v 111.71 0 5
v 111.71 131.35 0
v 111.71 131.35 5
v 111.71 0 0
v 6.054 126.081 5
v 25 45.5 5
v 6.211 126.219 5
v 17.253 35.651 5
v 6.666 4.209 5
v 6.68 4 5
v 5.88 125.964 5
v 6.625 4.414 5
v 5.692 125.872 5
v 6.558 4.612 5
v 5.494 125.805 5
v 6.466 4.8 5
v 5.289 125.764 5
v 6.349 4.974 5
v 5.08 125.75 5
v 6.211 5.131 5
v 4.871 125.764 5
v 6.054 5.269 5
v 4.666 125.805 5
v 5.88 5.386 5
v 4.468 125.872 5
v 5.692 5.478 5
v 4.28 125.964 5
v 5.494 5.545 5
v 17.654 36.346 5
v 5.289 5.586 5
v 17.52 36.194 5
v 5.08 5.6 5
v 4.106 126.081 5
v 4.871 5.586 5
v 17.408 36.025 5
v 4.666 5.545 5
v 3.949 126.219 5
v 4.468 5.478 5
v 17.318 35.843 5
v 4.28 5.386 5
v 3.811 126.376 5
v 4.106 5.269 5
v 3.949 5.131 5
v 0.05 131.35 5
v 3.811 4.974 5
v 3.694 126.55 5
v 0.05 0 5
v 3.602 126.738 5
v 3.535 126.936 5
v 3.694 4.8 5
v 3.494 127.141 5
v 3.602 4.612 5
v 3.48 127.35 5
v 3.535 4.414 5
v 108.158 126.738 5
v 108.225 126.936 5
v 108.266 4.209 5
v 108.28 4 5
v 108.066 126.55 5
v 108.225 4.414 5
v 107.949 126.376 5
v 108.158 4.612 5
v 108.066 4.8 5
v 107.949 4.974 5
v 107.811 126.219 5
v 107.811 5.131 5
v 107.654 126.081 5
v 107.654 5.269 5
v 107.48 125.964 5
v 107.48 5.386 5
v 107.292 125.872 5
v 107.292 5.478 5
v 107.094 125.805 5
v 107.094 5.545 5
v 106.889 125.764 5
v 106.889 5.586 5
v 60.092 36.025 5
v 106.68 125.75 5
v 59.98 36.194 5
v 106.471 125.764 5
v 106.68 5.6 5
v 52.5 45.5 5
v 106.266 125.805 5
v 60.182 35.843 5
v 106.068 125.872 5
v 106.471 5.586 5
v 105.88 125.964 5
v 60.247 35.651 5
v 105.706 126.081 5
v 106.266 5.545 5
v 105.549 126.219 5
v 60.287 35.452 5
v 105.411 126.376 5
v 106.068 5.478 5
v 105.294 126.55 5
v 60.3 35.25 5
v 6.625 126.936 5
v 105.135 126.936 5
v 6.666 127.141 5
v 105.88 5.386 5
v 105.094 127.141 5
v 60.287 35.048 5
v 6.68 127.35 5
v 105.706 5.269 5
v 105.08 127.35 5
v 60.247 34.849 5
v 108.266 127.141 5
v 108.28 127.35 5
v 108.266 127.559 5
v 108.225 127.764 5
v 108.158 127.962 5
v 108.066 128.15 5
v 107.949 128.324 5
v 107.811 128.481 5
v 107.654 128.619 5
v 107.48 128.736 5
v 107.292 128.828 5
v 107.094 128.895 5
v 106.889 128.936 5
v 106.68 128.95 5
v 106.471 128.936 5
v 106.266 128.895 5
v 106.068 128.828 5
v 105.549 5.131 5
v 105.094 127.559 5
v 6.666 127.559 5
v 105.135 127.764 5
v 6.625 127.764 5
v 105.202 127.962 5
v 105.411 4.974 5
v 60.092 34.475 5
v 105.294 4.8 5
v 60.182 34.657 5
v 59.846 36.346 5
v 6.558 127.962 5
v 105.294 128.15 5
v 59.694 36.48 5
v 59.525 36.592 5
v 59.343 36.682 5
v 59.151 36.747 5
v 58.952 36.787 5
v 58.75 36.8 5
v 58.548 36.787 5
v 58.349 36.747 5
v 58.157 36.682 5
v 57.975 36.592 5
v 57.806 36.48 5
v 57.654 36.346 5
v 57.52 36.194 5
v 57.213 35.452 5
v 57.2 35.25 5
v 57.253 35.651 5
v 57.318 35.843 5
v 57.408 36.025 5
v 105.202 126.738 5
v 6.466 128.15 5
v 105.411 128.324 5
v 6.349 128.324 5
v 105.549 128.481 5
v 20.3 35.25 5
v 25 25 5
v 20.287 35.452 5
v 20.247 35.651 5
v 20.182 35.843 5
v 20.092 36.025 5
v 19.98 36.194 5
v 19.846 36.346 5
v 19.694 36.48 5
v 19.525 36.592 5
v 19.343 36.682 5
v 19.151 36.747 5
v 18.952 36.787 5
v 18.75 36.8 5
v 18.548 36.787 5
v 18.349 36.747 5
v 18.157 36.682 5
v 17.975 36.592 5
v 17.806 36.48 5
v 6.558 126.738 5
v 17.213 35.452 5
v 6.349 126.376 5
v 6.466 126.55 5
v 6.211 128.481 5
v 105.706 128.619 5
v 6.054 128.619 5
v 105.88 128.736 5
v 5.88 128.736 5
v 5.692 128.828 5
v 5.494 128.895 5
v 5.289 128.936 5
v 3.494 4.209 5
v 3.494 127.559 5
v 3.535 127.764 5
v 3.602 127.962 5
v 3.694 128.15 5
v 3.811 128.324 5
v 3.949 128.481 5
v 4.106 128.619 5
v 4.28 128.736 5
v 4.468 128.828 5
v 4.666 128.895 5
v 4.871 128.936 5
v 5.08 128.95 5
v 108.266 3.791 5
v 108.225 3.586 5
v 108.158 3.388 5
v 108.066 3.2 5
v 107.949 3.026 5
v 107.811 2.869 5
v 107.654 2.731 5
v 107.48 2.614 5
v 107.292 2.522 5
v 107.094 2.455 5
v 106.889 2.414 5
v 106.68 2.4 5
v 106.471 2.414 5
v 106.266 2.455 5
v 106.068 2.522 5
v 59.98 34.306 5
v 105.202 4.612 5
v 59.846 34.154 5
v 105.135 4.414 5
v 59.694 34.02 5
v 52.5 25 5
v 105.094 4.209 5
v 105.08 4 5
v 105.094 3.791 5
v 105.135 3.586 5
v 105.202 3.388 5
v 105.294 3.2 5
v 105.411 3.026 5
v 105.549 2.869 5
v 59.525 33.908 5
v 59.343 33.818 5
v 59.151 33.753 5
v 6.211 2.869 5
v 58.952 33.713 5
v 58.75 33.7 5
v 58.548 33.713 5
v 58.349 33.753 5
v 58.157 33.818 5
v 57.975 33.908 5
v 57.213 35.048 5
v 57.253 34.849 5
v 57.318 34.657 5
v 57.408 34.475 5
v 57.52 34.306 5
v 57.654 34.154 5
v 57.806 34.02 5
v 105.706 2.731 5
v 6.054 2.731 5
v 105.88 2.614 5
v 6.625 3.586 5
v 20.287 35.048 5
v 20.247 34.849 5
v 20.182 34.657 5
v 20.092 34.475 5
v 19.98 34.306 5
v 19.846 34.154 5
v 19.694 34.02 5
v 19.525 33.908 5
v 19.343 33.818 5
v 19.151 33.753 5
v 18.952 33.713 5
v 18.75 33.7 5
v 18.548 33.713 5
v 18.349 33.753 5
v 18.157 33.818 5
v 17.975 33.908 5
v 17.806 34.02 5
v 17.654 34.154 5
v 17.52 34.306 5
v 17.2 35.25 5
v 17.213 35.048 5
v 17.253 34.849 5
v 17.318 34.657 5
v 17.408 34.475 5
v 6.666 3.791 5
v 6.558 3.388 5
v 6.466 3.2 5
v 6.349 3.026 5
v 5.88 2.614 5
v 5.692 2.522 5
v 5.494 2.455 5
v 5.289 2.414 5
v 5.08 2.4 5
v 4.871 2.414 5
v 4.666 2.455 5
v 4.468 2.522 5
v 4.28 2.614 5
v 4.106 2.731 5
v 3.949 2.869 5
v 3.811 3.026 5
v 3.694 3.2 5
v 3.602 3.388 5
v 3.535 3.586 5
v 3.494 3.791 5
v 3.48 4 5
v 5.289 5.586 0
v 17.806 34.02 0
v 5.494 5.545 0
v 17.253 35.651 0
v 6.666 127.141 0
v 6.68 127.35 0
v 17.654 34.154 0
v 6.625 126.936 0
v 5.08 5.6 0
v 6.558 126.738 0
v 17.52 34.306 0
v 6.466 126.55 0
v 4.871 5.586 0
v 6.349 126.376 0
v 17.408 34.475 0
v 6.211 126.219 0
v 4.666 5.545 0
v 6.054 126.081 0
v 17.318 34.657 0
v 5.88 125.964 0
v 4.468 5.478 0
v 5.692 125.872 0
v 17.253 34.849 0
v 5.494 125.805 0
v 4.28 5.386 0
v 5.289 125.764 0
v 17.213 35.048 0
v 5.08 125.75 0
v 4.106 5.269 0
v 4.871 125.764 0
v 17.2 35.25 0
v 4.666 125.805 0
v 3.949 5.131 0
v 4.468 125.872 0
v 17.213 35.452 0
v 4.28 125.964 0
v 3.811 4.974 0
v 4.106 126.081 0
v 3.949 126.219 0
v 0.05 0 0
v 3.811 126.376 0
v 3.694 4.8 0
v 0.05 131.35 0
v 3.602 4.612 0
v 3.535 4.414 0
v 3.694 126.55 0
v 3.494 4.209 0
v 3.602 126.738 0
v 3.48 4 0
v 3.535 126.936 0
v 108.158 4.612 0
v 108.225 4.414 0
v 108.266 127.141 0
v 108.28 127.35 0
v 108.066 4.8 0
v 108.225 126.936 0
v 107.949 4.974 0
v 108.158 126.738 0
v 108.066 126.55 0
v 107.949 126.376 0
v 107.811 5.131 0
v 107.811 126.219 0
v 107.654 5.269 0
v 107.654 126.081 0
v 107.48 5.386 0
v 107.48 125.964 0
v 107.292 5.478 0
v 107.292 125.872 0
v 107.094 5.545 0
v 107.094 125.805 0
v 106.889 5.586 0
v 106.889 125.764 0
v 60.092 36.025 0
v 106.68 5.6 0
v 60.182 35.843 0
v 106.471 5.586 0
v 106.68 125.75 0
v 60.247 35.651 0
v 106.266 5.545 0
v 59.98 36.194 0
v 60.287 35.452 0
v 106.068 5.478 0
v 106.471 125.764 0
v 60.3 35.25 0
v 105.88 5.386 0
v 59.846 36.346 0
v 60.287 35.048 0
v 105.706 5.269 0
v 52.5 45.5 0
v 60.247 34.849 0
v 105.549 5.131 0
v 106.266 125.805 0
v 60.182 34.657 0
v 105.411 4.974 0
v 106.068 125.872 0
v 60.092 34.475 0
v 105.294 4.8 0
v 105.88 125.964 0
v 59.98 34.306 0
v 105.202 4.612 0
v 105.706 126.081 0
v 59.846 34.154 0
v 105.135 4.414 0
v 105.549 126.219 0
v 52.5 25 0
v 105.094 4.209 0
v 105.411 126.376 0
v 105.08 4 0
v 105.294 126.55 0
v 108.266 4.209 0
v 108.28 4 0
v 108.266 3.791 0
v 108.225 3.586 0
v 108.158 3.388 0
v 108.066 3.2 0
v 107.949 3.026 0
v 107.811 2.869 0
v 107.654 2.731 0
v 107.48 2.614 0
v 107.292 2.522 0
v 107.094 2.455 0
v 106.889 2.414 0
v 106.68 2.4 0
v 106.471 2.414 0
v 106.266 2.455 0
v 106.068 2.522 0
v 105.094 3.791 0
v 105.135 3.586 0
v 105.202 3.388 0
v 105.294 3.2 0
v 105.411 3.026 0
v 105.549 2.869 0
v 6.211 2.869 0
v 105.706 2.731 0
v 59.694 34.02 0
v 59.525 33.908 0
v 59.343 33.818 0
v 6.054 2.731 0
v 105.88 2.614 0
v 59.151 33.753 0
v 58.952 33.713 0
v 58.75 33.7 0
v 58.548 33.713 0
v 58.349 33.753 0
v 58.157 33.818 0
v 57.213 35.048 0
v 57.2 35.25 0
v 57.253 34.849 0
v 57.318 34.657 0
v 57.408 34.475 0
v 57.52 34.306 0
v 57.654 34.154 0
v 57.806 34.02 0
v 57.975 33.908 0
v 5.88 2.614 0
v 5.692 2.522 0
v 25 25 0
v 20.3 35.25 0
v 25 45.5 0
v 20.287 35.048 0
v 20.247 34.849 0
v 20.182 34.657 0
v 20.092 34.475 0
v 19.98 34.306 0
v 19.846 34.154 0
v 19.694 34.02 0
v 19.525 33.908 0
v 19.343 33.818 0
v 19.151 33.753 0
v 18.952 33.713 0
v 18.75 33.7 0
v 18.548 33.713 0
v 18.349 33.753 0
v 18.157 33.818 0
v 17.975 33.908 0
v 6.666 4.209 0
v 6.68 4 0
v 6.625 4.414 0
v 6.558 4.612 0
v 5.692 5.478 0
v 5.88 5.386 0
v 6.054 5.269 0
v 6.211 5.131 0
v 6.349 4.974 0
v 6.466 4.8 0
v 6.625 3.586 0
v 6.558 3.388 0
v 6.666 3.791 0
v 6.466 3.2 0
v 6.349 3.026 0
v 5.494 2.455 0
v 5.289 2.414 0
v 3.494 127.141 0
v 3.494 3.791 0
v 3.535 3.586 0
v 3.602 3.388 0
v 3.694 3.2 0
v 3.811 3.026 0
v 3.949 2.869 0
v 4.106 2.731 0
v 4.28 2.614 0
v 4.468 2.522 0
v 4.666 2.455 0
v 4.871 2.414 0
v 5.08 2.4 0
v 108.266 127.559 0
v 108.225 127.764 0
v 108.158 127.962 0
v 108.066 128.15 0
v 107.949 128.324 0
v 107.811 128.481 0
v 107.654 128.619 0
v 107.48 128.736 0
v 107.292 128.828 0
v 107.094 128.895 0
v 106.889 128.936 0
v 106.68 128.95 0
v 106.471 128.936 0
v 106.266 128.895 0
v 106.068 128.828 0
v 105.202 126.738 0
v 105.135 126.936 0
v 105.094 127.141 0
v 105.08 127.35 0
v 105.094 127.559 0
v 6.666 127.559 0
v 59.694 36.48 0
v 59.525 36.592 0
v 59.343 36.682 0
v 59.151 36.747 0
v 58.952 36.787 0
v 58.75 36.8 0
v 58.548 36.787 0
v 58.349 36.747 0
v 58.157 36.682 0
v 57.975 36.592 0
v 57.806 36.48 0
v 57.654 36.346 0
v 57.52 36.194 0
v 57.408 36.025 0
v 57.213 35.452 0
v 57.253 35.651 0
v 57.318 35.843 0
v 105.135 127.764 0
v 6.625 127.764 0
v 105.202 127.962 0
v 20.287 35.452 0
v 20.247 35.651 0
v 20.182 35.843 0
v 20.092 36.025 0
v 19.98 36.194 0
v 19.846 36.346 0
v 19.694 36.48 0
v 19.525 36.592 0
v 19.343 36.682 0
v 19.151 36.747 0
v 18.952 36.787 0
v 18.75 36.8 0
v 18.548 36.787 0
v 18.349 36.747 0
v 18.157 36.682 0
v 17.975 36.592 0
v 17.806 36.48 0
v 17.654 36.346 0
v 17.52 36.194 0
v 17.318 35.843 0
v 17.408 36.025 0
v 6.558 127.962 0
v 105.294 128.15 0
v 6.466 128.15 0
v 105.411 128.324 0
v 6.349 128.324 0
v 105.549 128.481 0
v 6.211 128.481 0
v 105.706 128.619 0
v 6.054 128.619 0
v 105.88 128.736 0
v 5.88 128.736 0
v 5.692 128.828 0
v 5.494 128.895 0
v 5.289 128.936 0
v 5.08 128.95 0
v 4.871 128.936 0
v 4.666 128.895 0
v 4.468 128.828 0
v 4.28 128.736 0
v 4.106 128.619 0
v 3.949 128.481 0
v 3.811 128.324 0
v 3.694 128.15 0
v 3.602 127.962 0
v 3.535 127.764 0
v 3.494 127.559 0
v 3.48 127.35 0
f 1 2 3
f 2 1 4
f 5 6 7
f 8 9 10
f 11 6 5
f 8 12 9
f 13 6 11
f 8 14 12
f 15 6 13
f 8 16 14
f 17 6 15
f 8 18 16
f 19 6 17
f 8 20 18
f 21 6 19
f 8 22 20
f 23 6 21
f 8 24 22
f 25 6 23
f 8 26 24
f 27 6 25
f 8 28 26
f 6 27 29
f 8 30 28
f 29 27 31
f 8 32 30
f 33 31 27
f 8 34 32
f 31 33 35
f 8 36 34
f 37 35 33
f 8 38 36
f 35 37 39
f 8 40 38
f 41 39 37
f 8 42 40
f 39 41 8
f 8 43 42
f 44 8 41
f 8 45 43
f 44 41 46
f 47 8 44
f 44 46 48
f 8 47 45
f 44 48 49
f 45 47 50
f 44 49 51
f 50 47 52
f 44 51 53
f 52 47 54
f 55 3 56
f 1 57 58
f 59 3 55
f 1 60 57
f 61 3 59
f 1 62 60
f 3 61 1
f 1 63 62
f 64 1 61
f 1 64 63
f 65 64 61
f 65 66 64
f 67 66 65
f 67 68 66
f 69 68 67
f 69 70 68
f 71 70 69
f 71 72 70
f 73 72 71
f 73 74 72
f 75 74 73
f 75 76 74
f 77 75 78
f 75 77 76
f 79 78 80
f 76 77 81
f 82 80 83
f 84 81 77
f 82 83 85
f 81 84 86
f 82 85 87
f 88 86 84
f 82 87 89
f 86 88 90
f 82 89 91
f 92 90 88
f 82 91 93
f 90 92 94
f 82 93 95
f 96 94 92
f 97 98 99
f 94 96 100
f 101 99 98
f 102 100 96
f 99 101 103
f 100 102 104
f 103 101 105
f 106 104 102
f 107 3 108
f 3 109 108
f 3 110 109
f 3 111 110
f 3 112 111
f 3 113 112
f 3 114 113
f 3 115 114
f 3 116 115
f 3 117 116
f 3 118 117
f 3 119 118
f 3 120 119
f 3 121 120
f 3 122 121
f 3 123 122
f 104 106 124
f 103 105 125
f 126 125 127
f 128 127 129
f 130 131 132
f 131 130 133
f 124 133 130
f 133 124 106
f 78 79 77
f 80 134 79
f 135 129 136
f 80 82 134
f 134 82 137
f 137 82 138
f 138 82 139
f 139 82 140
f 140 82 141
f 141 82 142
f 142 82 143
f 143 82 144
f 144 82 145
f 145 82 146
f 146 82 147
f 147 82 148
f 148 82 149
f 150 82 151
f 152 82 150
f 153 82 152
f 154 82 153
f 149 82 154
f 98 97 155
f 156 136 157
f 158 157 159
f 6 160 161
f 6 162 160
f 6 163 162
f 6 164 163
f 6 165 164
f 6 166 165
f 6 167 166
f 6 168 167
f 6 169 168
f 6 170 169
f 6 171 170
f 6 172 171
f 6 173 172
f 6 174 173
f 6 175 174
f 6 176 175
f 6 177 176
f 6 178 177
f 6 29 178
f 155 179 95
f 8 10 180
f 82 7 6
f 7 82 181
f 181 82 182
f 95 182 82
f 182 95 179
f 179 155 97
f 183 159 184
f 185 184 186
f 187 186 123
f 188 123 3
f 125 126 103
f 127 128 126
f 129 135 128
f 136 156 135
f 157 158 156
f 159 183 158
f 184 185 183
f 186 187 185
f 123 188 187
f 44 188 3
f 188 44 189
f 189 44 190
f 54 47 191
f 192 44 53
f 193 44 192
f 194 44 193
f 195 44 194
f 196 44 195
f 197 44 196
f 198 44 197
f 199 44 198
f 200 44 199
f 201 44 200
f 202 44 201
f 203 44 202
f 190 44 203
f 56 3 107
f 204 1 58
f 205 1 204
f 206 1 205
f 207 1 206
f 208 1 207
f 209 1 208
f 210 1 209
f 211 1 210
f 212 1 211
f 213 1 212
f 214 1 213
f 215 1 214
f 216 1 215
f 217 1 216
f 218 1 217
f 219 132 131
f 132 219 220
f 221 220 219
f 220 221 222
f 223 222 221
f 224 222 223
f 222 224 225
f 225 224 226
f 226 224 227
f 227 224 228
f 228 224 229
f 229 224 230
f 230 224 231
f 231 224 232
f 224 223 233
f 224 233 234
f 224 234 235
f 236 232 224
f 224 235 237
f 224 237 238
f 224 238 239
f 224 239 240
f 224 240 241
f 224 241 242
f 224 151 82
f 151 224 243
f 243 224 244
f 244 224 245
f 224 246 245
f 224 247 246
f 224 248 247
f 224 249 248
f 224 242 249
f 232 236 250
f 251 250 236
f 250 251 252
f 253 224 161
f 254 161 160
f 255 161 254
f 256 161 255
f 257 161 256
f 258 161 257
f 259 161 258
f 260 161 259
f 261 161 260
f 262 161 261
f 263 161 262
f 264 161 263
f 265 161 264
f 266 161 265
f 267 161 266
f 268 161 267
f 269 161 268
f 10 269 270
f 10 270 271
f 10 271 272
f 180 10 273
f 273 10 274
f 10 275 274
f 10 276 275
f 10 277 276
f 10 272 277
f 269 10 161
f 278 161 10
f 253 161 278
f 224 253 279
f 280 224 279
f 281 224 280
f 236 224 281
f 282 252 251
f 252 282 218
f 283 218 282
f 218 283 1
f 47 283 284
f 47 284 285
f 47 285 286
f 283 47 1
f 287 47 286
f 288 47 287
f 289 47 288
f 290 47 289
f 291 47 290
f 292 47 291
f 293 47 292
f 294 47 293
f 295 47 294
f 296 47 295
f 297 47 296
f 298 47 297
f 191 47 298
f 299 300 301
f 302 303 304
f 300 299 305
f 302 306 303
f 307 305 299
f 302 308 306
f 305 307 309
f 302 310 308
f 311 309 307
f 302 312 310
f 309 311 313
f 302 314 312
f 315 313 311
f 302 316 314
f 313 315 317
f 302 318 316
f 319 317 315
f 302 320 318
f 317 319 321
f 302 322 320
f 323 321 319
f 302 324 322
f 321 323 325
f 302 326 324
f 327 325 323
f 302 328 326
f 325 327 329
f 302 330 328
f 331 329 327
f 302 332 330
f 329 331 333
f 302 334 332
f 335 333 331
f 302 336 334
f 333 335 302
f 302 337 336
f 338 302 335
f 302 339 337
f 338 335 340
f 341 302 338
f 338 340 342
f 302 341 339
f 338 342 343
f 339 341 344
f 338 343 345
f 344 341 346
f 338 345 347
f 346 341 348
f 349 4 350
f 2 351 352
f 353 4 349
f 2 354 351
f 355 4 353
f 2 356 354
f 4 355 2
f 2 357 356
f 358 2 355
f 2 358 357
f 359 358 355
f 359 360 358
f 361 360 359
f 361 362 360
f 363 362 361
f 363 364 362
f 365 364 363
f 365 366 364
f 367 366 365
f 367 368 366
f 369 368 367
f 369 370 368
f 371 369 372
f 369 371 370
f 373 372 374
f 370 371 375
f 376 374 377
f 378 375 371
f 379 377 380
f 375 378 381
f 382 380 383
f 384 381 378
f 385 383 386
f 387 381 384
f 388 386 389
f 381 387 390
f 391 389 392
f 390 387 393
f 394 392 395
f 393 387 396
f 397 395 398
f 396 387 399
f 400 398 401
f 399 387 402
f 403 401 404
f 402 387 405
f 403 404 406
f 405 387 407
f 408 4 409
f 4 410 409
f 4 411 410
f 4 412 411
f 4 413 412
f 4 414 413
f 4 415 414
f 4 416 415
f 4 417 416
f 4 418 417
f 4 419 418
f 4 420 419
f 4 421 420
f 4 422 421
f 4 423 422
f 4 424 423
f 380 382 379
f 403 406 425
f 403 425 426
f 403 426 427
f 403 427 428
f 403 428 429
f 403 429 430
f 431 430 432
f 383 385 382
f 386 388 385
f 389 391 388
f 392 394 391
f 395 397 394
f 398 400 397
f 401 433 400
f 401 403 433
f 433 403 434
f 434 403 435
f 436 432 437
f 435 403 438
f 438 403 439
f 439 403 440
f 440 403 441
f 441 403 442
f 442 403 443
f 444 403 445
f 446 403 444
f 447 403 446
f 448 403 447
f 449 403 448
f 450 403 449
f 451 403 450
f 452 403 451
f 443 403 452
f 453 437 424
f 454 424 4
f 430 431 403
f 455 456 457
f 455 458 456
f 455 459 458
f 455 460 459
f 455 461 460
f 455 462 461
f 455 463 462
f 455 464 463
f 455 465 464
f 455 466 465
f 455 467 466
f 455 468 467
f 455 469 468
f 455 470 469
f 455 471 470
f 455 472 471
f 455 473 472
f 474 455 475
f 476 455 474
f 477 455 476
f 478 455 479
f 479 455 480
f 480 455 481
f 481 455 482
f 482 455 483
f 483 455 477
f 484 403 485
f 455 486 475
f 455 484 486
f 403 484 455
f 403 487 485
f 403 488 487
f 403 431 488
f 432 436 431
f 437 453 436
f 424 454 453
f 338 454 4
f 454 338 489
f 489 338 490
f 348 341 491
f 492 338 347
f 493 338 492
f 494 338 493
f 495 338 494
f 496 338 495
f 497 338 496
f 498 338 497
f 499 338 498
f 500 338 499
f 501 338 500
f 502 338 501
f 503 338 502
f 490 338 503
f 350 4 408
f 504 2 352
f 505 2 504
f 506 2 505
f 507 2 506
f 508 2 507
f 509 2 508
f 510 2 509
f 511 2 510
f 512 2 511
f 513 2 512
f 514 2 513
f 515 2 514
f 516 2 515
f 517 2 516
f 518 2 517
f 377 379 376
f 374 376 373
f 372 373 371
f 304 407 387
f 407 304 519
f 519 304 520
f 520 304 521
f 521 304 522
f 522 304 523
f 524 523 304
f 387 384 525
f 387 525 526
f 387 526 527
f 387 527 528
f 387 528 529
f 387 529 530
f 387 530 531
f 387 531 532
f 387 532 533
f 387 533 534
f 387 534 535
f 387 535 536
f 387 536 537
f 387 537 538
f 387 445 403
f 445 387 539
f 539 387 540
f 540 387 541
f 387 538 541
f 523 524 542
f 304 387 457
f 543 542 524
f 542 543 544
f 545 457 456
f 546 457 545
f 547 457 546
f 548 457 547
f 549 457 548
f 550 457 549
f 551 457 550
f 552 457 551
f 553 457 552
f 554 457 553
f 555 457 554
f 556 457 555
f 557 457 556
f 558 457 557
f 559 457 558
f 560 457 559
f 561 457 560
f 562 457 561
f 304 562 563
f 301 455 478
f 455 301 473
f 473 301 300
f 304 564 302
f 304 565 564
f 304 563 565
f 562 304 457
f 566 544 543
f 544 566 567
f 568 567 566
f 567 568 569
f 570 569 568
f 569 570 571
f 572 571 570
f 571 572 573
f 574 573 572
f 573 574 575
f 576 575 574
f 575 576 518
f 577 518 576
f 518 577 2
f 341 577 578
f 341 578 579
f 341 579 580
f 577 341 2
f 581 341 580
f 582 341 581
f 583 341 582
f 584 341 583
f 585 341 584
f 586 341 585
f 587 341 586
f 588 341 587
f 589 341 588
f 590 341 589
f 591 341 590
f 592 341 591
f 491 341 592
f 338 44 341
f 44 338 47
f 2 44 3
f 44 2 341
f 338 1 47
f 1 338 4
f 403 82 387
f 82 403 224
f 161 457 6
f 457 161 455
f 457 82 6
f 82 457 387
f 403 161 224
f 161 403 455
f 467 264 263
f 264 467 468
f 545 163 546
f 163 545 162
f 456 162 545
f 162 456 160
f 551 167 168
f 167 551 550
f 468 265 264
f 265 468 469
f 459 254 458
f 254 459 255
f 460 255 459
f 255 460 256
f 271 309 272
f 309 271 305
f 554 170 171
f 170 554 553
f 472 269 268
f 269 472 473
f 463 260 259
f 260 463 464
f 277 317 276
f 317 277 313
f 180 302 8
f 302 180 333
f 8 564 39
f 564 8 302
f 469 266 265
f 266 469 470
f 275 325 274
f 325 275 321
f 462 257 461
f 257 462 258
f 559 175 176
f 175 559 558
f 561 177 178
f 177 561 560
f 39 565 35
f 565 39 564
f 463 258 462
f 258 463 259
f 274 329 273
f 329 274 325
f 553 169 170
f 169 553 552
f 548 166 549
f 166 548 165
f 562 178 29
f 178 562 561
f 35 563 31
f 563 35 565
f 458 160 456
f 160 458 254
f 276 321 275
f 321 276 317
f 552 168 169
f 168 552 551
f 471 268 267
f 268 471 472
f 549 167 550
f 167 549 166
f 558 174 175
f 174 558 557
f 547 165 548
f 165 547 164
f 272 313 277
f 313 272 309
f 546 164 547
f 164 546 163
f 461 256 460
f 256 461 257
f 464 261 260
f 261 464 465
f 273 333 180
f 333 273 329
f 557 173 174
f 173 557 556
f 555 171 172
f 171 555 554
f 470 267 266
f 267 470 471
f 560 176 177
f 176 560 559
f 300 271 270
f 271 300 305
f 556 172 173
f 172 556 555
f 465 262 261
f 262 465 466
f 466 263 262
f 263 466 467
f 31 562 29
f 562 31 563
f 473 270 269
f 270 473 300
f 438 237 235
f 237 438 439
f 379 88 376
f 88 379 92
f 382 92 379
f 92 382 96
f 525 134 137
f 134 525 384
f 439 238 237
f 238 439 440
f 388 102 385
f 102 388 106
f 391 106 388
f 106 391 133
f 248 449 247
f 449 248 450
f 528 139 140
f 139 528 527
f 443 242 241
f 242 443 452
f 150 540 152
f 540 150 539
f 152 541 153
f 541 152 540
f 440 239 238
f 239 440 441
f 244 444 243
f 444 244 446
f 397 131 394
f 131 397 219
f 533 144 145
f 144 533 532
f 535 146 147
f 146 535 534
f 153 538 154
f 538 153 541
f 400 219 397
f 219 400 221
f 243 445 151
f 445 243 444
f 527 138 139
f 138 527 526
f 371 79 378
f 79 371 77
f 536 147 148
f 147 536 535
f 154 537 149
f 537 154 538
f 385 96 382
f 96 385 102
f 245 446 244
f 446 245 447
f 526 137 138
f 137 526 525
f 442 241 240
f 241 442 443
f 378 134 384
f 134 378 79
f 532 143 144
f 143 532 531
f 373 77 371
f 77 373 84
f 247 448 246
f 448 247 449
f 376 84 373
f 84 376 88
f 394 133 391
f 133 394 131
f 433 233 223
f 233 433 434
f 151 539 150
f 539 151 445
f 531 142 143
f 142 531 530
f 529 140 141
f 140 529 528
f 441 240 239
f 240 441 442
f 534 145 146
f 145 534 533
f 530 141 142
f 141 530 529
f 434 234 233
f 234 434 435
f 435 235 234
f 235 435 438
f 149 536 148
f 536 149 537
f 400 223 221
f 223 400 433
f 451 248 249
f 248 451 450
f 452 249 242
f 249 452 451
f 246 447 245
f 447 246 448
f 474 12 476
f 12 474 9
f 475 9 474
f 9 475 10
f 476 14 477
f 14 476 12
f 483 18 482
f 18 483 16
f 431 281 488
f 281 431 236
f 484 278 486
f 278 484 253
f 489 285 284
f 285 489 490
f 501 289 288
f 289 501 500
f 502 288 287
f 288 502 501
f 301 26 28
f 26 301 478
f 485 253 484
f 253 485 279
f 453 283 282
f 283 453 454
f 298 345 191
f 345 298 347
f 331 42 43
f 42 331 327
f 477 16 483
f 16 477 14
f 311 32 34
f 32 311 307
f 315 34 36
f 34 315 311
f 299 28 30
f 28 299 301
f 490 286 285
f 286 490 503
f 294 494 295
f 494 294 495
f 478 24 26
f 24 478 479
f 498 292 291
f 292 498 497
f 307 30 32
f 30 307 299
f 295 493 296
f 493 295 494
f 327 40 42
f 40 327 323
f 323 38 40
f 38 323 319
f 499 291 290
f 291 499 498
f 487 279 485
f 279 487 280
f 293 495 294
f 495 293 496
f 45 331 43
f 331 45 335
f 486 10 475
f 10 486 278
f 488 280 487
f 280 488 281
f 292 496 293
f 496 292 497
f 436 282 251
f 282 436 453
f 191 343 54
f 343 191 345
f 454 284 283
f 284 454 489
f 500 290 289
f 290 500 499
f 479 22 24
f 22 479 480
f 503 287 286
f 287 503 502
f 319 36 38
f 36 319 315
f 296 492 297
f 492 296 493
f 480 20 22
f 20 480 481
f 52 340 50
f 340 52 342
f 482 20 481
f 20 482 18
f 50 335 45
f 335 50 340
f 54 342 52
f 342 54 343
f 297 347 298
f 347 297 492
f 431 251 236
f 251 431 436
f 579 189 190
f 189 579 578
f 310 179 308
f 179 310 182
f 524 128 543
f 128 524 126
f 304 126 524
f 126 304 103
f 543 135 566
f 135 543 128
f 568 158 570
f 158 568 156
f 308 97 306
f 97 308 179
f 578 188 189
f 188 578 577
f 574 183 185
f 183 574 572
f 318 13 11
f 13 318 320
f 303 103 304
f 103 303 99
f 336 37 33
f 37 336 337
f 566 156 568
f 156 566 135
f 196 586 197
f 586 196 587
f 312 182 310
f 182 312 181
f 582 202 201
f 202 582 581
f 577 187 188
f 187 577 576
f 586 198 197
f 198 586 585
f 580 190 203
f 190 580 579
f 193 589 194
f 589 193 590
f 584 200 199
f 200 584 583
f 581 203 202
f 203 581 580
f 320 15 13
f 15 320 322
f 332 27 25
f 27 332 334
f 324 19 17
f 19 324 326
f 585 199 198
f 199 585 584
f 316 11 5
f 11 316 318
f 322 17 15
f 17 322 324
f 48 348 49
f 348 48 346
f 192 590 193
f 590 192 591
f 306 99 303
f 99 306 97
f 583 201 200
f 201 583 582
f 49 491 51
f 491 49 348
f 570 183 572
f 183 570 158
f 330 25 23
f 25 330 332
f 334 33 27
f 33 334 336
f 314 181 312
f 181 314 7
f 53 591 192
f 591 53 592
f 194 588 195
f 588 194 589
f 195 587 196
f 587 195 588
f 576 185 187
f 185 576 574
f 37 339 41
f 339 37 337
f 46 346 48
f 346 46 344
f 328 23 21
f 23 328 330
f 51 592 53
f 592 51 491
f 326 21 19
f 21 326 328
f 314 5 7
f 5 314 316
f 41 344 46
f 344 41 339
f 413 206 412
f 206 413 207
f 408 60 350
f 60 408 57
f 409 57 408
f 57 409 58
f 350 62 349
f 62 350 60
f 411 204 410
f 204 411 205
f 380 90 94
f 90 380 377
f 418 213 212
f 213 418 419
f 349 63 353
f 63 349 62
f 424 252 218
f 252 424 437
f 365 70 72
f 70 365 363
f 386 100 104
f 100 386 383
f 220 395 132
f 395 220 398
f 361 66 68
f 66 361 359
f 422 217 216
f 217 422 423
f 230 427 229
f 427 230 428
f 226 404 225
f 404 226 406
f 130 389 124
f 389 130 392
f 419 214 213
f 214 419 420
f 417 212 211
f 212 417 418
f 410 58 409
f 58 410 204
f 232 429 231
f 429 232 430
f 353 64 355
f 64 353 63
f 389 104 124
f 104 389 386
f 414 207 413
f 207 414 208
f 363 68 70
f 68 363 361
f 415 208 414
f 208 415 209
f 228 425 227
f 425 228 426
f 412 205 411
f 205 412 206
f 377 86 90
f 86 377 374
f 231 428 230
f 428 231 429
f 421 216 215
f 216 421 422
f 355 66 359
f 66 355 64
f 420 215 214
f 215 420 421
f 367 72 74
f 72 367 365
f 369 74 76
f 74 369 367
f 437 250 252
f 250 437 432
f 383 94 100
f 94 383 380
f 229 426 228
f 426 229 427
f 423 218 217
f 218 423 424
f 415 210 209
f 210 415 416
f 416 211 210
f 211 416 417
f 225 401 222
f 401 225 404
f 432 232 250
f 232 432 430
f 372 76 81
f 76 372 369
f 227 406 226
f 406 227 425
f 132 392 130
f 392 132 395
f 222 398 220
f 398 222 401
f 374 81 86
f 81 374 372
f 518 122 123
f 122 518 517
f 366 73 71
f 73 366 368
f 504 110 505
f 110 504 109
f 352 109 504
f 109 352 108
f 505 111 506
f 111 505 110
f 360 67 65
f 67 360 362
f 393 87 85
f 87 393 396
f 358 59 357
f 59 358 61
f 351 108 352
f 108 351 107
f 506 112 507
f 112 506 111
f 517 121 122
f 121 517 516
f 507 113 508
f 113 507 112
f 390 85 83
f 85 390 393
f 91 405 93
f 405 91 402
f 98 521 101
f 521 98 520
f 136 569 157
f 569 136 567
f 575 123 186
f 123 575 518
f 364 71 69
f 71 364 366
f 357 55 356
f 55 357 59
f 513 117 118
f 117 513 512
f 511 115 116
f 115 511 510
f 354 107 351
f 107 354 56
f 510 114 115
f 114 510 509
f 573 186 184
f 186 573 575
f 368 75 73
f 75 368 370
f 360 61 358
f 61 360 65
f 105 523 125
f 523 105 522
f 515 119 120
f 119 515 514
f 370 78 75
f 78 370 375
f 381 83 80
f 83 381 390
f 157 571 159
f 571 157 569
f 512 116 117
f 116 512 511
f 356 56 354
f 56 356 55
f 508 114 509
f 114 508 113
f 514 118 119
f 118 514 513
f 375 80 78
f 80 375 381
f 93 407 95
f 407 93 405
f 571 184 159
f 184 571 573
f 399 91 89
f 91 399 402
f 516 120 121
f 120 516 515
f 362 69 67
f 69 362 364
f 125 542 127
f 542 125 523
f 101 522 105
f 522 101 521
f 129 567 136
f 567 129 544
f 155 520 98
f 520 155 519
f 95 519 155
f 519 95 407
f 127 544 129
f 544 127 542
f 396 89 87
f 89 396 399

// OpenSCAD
HE=44.45;
TE=5.08;

WIDTH= 22  * TE;
HEIGHT=3*HE-2;
THICKNESS=5;
EURORACK_HEIGHT=128.5;
PLUG_POSITION=[15,15,0];
COMB_MARGIN = 8;

// Mounting Hole Offset from the top / bottom edge
HOLE_OFFSET_Y = 4;
// Mounting Hole offset from the sides
HOLE_OFFSET_X = TE;
HOLE_RADIUS = 1.6;
// Number of Facets for the Holes. 
// A reasonably high number should be picked or else holes might end up to small
HOLE_FACETS = 48;

module plug_positive(){
  PLUG_HEIGHT=20.5;
  PLUG_WIDTH=27.5;
  cube([PLUG_WIDTH + 20, PLUG_HEIGHT + 20, THICKNESS]);
}
module plug_negative(){
  PLUG_HEIGHT=20.5;
  PLUG_WIDTH=27.5;
  PLUG_SCREW_DISTANCE = 40;
  PLUG_SCREWHOLE_RADIUS=1.55;
  PLUG_SCREW_OFFSET = (PLUG_SCREW_DISTANCE - PLUG_WIDTH) / 2;
  translate([10,10, -0.1])
  cube([PLUG_WIDTH, PLUG_HEIGHT, THICKNESS + 0.2]);
  translate([10 - PLUG_SCREW_OFFSET, 10 + PLUG_HEIGHT / 2, -0.1])
  cylinder(h = THICKNESS+0.2, r=PLUG_SCREWHOLE_RADIUS, center=false, $fn=HOLE_FACETS);
  translate([10 + PLUG_WIDTH + PLUG_SCREW_OFFSET, 10 + PLUG_HEIGHT / 2, -0.1])
  cylinder(h = THICKNESS+0.2, r=PLUG_SCREWHOLE_RADIUS, center=false, $fn=HOLE_FACETS);

}
 difference(){
    union(){
        translate([0.05,0,0])
        cube([WIDTH-0.1, HEIGHT, THICKNESS]);
        translate(PLUG_POSITION)
        plug_positive();
    }
    translate(PLUG_POSITION)
    plug_negative();
    // The four mounting holes
    for (x =[HOLE_OFFSET_X, WIDTH-HOLE_OFFSET_X]){
        for (y =[HOLE_OFFSET_Y, HEIGHT-HOLE_OFFSET_Y]){
            color([1,0,0])
            translate([x, y, -0.1]){
            cylinder(h = THICKNESS+0.2, r=HOLE_RADIUS, center=false, $fn=HOLE_FACETS); 
            };
        }
    };
}
